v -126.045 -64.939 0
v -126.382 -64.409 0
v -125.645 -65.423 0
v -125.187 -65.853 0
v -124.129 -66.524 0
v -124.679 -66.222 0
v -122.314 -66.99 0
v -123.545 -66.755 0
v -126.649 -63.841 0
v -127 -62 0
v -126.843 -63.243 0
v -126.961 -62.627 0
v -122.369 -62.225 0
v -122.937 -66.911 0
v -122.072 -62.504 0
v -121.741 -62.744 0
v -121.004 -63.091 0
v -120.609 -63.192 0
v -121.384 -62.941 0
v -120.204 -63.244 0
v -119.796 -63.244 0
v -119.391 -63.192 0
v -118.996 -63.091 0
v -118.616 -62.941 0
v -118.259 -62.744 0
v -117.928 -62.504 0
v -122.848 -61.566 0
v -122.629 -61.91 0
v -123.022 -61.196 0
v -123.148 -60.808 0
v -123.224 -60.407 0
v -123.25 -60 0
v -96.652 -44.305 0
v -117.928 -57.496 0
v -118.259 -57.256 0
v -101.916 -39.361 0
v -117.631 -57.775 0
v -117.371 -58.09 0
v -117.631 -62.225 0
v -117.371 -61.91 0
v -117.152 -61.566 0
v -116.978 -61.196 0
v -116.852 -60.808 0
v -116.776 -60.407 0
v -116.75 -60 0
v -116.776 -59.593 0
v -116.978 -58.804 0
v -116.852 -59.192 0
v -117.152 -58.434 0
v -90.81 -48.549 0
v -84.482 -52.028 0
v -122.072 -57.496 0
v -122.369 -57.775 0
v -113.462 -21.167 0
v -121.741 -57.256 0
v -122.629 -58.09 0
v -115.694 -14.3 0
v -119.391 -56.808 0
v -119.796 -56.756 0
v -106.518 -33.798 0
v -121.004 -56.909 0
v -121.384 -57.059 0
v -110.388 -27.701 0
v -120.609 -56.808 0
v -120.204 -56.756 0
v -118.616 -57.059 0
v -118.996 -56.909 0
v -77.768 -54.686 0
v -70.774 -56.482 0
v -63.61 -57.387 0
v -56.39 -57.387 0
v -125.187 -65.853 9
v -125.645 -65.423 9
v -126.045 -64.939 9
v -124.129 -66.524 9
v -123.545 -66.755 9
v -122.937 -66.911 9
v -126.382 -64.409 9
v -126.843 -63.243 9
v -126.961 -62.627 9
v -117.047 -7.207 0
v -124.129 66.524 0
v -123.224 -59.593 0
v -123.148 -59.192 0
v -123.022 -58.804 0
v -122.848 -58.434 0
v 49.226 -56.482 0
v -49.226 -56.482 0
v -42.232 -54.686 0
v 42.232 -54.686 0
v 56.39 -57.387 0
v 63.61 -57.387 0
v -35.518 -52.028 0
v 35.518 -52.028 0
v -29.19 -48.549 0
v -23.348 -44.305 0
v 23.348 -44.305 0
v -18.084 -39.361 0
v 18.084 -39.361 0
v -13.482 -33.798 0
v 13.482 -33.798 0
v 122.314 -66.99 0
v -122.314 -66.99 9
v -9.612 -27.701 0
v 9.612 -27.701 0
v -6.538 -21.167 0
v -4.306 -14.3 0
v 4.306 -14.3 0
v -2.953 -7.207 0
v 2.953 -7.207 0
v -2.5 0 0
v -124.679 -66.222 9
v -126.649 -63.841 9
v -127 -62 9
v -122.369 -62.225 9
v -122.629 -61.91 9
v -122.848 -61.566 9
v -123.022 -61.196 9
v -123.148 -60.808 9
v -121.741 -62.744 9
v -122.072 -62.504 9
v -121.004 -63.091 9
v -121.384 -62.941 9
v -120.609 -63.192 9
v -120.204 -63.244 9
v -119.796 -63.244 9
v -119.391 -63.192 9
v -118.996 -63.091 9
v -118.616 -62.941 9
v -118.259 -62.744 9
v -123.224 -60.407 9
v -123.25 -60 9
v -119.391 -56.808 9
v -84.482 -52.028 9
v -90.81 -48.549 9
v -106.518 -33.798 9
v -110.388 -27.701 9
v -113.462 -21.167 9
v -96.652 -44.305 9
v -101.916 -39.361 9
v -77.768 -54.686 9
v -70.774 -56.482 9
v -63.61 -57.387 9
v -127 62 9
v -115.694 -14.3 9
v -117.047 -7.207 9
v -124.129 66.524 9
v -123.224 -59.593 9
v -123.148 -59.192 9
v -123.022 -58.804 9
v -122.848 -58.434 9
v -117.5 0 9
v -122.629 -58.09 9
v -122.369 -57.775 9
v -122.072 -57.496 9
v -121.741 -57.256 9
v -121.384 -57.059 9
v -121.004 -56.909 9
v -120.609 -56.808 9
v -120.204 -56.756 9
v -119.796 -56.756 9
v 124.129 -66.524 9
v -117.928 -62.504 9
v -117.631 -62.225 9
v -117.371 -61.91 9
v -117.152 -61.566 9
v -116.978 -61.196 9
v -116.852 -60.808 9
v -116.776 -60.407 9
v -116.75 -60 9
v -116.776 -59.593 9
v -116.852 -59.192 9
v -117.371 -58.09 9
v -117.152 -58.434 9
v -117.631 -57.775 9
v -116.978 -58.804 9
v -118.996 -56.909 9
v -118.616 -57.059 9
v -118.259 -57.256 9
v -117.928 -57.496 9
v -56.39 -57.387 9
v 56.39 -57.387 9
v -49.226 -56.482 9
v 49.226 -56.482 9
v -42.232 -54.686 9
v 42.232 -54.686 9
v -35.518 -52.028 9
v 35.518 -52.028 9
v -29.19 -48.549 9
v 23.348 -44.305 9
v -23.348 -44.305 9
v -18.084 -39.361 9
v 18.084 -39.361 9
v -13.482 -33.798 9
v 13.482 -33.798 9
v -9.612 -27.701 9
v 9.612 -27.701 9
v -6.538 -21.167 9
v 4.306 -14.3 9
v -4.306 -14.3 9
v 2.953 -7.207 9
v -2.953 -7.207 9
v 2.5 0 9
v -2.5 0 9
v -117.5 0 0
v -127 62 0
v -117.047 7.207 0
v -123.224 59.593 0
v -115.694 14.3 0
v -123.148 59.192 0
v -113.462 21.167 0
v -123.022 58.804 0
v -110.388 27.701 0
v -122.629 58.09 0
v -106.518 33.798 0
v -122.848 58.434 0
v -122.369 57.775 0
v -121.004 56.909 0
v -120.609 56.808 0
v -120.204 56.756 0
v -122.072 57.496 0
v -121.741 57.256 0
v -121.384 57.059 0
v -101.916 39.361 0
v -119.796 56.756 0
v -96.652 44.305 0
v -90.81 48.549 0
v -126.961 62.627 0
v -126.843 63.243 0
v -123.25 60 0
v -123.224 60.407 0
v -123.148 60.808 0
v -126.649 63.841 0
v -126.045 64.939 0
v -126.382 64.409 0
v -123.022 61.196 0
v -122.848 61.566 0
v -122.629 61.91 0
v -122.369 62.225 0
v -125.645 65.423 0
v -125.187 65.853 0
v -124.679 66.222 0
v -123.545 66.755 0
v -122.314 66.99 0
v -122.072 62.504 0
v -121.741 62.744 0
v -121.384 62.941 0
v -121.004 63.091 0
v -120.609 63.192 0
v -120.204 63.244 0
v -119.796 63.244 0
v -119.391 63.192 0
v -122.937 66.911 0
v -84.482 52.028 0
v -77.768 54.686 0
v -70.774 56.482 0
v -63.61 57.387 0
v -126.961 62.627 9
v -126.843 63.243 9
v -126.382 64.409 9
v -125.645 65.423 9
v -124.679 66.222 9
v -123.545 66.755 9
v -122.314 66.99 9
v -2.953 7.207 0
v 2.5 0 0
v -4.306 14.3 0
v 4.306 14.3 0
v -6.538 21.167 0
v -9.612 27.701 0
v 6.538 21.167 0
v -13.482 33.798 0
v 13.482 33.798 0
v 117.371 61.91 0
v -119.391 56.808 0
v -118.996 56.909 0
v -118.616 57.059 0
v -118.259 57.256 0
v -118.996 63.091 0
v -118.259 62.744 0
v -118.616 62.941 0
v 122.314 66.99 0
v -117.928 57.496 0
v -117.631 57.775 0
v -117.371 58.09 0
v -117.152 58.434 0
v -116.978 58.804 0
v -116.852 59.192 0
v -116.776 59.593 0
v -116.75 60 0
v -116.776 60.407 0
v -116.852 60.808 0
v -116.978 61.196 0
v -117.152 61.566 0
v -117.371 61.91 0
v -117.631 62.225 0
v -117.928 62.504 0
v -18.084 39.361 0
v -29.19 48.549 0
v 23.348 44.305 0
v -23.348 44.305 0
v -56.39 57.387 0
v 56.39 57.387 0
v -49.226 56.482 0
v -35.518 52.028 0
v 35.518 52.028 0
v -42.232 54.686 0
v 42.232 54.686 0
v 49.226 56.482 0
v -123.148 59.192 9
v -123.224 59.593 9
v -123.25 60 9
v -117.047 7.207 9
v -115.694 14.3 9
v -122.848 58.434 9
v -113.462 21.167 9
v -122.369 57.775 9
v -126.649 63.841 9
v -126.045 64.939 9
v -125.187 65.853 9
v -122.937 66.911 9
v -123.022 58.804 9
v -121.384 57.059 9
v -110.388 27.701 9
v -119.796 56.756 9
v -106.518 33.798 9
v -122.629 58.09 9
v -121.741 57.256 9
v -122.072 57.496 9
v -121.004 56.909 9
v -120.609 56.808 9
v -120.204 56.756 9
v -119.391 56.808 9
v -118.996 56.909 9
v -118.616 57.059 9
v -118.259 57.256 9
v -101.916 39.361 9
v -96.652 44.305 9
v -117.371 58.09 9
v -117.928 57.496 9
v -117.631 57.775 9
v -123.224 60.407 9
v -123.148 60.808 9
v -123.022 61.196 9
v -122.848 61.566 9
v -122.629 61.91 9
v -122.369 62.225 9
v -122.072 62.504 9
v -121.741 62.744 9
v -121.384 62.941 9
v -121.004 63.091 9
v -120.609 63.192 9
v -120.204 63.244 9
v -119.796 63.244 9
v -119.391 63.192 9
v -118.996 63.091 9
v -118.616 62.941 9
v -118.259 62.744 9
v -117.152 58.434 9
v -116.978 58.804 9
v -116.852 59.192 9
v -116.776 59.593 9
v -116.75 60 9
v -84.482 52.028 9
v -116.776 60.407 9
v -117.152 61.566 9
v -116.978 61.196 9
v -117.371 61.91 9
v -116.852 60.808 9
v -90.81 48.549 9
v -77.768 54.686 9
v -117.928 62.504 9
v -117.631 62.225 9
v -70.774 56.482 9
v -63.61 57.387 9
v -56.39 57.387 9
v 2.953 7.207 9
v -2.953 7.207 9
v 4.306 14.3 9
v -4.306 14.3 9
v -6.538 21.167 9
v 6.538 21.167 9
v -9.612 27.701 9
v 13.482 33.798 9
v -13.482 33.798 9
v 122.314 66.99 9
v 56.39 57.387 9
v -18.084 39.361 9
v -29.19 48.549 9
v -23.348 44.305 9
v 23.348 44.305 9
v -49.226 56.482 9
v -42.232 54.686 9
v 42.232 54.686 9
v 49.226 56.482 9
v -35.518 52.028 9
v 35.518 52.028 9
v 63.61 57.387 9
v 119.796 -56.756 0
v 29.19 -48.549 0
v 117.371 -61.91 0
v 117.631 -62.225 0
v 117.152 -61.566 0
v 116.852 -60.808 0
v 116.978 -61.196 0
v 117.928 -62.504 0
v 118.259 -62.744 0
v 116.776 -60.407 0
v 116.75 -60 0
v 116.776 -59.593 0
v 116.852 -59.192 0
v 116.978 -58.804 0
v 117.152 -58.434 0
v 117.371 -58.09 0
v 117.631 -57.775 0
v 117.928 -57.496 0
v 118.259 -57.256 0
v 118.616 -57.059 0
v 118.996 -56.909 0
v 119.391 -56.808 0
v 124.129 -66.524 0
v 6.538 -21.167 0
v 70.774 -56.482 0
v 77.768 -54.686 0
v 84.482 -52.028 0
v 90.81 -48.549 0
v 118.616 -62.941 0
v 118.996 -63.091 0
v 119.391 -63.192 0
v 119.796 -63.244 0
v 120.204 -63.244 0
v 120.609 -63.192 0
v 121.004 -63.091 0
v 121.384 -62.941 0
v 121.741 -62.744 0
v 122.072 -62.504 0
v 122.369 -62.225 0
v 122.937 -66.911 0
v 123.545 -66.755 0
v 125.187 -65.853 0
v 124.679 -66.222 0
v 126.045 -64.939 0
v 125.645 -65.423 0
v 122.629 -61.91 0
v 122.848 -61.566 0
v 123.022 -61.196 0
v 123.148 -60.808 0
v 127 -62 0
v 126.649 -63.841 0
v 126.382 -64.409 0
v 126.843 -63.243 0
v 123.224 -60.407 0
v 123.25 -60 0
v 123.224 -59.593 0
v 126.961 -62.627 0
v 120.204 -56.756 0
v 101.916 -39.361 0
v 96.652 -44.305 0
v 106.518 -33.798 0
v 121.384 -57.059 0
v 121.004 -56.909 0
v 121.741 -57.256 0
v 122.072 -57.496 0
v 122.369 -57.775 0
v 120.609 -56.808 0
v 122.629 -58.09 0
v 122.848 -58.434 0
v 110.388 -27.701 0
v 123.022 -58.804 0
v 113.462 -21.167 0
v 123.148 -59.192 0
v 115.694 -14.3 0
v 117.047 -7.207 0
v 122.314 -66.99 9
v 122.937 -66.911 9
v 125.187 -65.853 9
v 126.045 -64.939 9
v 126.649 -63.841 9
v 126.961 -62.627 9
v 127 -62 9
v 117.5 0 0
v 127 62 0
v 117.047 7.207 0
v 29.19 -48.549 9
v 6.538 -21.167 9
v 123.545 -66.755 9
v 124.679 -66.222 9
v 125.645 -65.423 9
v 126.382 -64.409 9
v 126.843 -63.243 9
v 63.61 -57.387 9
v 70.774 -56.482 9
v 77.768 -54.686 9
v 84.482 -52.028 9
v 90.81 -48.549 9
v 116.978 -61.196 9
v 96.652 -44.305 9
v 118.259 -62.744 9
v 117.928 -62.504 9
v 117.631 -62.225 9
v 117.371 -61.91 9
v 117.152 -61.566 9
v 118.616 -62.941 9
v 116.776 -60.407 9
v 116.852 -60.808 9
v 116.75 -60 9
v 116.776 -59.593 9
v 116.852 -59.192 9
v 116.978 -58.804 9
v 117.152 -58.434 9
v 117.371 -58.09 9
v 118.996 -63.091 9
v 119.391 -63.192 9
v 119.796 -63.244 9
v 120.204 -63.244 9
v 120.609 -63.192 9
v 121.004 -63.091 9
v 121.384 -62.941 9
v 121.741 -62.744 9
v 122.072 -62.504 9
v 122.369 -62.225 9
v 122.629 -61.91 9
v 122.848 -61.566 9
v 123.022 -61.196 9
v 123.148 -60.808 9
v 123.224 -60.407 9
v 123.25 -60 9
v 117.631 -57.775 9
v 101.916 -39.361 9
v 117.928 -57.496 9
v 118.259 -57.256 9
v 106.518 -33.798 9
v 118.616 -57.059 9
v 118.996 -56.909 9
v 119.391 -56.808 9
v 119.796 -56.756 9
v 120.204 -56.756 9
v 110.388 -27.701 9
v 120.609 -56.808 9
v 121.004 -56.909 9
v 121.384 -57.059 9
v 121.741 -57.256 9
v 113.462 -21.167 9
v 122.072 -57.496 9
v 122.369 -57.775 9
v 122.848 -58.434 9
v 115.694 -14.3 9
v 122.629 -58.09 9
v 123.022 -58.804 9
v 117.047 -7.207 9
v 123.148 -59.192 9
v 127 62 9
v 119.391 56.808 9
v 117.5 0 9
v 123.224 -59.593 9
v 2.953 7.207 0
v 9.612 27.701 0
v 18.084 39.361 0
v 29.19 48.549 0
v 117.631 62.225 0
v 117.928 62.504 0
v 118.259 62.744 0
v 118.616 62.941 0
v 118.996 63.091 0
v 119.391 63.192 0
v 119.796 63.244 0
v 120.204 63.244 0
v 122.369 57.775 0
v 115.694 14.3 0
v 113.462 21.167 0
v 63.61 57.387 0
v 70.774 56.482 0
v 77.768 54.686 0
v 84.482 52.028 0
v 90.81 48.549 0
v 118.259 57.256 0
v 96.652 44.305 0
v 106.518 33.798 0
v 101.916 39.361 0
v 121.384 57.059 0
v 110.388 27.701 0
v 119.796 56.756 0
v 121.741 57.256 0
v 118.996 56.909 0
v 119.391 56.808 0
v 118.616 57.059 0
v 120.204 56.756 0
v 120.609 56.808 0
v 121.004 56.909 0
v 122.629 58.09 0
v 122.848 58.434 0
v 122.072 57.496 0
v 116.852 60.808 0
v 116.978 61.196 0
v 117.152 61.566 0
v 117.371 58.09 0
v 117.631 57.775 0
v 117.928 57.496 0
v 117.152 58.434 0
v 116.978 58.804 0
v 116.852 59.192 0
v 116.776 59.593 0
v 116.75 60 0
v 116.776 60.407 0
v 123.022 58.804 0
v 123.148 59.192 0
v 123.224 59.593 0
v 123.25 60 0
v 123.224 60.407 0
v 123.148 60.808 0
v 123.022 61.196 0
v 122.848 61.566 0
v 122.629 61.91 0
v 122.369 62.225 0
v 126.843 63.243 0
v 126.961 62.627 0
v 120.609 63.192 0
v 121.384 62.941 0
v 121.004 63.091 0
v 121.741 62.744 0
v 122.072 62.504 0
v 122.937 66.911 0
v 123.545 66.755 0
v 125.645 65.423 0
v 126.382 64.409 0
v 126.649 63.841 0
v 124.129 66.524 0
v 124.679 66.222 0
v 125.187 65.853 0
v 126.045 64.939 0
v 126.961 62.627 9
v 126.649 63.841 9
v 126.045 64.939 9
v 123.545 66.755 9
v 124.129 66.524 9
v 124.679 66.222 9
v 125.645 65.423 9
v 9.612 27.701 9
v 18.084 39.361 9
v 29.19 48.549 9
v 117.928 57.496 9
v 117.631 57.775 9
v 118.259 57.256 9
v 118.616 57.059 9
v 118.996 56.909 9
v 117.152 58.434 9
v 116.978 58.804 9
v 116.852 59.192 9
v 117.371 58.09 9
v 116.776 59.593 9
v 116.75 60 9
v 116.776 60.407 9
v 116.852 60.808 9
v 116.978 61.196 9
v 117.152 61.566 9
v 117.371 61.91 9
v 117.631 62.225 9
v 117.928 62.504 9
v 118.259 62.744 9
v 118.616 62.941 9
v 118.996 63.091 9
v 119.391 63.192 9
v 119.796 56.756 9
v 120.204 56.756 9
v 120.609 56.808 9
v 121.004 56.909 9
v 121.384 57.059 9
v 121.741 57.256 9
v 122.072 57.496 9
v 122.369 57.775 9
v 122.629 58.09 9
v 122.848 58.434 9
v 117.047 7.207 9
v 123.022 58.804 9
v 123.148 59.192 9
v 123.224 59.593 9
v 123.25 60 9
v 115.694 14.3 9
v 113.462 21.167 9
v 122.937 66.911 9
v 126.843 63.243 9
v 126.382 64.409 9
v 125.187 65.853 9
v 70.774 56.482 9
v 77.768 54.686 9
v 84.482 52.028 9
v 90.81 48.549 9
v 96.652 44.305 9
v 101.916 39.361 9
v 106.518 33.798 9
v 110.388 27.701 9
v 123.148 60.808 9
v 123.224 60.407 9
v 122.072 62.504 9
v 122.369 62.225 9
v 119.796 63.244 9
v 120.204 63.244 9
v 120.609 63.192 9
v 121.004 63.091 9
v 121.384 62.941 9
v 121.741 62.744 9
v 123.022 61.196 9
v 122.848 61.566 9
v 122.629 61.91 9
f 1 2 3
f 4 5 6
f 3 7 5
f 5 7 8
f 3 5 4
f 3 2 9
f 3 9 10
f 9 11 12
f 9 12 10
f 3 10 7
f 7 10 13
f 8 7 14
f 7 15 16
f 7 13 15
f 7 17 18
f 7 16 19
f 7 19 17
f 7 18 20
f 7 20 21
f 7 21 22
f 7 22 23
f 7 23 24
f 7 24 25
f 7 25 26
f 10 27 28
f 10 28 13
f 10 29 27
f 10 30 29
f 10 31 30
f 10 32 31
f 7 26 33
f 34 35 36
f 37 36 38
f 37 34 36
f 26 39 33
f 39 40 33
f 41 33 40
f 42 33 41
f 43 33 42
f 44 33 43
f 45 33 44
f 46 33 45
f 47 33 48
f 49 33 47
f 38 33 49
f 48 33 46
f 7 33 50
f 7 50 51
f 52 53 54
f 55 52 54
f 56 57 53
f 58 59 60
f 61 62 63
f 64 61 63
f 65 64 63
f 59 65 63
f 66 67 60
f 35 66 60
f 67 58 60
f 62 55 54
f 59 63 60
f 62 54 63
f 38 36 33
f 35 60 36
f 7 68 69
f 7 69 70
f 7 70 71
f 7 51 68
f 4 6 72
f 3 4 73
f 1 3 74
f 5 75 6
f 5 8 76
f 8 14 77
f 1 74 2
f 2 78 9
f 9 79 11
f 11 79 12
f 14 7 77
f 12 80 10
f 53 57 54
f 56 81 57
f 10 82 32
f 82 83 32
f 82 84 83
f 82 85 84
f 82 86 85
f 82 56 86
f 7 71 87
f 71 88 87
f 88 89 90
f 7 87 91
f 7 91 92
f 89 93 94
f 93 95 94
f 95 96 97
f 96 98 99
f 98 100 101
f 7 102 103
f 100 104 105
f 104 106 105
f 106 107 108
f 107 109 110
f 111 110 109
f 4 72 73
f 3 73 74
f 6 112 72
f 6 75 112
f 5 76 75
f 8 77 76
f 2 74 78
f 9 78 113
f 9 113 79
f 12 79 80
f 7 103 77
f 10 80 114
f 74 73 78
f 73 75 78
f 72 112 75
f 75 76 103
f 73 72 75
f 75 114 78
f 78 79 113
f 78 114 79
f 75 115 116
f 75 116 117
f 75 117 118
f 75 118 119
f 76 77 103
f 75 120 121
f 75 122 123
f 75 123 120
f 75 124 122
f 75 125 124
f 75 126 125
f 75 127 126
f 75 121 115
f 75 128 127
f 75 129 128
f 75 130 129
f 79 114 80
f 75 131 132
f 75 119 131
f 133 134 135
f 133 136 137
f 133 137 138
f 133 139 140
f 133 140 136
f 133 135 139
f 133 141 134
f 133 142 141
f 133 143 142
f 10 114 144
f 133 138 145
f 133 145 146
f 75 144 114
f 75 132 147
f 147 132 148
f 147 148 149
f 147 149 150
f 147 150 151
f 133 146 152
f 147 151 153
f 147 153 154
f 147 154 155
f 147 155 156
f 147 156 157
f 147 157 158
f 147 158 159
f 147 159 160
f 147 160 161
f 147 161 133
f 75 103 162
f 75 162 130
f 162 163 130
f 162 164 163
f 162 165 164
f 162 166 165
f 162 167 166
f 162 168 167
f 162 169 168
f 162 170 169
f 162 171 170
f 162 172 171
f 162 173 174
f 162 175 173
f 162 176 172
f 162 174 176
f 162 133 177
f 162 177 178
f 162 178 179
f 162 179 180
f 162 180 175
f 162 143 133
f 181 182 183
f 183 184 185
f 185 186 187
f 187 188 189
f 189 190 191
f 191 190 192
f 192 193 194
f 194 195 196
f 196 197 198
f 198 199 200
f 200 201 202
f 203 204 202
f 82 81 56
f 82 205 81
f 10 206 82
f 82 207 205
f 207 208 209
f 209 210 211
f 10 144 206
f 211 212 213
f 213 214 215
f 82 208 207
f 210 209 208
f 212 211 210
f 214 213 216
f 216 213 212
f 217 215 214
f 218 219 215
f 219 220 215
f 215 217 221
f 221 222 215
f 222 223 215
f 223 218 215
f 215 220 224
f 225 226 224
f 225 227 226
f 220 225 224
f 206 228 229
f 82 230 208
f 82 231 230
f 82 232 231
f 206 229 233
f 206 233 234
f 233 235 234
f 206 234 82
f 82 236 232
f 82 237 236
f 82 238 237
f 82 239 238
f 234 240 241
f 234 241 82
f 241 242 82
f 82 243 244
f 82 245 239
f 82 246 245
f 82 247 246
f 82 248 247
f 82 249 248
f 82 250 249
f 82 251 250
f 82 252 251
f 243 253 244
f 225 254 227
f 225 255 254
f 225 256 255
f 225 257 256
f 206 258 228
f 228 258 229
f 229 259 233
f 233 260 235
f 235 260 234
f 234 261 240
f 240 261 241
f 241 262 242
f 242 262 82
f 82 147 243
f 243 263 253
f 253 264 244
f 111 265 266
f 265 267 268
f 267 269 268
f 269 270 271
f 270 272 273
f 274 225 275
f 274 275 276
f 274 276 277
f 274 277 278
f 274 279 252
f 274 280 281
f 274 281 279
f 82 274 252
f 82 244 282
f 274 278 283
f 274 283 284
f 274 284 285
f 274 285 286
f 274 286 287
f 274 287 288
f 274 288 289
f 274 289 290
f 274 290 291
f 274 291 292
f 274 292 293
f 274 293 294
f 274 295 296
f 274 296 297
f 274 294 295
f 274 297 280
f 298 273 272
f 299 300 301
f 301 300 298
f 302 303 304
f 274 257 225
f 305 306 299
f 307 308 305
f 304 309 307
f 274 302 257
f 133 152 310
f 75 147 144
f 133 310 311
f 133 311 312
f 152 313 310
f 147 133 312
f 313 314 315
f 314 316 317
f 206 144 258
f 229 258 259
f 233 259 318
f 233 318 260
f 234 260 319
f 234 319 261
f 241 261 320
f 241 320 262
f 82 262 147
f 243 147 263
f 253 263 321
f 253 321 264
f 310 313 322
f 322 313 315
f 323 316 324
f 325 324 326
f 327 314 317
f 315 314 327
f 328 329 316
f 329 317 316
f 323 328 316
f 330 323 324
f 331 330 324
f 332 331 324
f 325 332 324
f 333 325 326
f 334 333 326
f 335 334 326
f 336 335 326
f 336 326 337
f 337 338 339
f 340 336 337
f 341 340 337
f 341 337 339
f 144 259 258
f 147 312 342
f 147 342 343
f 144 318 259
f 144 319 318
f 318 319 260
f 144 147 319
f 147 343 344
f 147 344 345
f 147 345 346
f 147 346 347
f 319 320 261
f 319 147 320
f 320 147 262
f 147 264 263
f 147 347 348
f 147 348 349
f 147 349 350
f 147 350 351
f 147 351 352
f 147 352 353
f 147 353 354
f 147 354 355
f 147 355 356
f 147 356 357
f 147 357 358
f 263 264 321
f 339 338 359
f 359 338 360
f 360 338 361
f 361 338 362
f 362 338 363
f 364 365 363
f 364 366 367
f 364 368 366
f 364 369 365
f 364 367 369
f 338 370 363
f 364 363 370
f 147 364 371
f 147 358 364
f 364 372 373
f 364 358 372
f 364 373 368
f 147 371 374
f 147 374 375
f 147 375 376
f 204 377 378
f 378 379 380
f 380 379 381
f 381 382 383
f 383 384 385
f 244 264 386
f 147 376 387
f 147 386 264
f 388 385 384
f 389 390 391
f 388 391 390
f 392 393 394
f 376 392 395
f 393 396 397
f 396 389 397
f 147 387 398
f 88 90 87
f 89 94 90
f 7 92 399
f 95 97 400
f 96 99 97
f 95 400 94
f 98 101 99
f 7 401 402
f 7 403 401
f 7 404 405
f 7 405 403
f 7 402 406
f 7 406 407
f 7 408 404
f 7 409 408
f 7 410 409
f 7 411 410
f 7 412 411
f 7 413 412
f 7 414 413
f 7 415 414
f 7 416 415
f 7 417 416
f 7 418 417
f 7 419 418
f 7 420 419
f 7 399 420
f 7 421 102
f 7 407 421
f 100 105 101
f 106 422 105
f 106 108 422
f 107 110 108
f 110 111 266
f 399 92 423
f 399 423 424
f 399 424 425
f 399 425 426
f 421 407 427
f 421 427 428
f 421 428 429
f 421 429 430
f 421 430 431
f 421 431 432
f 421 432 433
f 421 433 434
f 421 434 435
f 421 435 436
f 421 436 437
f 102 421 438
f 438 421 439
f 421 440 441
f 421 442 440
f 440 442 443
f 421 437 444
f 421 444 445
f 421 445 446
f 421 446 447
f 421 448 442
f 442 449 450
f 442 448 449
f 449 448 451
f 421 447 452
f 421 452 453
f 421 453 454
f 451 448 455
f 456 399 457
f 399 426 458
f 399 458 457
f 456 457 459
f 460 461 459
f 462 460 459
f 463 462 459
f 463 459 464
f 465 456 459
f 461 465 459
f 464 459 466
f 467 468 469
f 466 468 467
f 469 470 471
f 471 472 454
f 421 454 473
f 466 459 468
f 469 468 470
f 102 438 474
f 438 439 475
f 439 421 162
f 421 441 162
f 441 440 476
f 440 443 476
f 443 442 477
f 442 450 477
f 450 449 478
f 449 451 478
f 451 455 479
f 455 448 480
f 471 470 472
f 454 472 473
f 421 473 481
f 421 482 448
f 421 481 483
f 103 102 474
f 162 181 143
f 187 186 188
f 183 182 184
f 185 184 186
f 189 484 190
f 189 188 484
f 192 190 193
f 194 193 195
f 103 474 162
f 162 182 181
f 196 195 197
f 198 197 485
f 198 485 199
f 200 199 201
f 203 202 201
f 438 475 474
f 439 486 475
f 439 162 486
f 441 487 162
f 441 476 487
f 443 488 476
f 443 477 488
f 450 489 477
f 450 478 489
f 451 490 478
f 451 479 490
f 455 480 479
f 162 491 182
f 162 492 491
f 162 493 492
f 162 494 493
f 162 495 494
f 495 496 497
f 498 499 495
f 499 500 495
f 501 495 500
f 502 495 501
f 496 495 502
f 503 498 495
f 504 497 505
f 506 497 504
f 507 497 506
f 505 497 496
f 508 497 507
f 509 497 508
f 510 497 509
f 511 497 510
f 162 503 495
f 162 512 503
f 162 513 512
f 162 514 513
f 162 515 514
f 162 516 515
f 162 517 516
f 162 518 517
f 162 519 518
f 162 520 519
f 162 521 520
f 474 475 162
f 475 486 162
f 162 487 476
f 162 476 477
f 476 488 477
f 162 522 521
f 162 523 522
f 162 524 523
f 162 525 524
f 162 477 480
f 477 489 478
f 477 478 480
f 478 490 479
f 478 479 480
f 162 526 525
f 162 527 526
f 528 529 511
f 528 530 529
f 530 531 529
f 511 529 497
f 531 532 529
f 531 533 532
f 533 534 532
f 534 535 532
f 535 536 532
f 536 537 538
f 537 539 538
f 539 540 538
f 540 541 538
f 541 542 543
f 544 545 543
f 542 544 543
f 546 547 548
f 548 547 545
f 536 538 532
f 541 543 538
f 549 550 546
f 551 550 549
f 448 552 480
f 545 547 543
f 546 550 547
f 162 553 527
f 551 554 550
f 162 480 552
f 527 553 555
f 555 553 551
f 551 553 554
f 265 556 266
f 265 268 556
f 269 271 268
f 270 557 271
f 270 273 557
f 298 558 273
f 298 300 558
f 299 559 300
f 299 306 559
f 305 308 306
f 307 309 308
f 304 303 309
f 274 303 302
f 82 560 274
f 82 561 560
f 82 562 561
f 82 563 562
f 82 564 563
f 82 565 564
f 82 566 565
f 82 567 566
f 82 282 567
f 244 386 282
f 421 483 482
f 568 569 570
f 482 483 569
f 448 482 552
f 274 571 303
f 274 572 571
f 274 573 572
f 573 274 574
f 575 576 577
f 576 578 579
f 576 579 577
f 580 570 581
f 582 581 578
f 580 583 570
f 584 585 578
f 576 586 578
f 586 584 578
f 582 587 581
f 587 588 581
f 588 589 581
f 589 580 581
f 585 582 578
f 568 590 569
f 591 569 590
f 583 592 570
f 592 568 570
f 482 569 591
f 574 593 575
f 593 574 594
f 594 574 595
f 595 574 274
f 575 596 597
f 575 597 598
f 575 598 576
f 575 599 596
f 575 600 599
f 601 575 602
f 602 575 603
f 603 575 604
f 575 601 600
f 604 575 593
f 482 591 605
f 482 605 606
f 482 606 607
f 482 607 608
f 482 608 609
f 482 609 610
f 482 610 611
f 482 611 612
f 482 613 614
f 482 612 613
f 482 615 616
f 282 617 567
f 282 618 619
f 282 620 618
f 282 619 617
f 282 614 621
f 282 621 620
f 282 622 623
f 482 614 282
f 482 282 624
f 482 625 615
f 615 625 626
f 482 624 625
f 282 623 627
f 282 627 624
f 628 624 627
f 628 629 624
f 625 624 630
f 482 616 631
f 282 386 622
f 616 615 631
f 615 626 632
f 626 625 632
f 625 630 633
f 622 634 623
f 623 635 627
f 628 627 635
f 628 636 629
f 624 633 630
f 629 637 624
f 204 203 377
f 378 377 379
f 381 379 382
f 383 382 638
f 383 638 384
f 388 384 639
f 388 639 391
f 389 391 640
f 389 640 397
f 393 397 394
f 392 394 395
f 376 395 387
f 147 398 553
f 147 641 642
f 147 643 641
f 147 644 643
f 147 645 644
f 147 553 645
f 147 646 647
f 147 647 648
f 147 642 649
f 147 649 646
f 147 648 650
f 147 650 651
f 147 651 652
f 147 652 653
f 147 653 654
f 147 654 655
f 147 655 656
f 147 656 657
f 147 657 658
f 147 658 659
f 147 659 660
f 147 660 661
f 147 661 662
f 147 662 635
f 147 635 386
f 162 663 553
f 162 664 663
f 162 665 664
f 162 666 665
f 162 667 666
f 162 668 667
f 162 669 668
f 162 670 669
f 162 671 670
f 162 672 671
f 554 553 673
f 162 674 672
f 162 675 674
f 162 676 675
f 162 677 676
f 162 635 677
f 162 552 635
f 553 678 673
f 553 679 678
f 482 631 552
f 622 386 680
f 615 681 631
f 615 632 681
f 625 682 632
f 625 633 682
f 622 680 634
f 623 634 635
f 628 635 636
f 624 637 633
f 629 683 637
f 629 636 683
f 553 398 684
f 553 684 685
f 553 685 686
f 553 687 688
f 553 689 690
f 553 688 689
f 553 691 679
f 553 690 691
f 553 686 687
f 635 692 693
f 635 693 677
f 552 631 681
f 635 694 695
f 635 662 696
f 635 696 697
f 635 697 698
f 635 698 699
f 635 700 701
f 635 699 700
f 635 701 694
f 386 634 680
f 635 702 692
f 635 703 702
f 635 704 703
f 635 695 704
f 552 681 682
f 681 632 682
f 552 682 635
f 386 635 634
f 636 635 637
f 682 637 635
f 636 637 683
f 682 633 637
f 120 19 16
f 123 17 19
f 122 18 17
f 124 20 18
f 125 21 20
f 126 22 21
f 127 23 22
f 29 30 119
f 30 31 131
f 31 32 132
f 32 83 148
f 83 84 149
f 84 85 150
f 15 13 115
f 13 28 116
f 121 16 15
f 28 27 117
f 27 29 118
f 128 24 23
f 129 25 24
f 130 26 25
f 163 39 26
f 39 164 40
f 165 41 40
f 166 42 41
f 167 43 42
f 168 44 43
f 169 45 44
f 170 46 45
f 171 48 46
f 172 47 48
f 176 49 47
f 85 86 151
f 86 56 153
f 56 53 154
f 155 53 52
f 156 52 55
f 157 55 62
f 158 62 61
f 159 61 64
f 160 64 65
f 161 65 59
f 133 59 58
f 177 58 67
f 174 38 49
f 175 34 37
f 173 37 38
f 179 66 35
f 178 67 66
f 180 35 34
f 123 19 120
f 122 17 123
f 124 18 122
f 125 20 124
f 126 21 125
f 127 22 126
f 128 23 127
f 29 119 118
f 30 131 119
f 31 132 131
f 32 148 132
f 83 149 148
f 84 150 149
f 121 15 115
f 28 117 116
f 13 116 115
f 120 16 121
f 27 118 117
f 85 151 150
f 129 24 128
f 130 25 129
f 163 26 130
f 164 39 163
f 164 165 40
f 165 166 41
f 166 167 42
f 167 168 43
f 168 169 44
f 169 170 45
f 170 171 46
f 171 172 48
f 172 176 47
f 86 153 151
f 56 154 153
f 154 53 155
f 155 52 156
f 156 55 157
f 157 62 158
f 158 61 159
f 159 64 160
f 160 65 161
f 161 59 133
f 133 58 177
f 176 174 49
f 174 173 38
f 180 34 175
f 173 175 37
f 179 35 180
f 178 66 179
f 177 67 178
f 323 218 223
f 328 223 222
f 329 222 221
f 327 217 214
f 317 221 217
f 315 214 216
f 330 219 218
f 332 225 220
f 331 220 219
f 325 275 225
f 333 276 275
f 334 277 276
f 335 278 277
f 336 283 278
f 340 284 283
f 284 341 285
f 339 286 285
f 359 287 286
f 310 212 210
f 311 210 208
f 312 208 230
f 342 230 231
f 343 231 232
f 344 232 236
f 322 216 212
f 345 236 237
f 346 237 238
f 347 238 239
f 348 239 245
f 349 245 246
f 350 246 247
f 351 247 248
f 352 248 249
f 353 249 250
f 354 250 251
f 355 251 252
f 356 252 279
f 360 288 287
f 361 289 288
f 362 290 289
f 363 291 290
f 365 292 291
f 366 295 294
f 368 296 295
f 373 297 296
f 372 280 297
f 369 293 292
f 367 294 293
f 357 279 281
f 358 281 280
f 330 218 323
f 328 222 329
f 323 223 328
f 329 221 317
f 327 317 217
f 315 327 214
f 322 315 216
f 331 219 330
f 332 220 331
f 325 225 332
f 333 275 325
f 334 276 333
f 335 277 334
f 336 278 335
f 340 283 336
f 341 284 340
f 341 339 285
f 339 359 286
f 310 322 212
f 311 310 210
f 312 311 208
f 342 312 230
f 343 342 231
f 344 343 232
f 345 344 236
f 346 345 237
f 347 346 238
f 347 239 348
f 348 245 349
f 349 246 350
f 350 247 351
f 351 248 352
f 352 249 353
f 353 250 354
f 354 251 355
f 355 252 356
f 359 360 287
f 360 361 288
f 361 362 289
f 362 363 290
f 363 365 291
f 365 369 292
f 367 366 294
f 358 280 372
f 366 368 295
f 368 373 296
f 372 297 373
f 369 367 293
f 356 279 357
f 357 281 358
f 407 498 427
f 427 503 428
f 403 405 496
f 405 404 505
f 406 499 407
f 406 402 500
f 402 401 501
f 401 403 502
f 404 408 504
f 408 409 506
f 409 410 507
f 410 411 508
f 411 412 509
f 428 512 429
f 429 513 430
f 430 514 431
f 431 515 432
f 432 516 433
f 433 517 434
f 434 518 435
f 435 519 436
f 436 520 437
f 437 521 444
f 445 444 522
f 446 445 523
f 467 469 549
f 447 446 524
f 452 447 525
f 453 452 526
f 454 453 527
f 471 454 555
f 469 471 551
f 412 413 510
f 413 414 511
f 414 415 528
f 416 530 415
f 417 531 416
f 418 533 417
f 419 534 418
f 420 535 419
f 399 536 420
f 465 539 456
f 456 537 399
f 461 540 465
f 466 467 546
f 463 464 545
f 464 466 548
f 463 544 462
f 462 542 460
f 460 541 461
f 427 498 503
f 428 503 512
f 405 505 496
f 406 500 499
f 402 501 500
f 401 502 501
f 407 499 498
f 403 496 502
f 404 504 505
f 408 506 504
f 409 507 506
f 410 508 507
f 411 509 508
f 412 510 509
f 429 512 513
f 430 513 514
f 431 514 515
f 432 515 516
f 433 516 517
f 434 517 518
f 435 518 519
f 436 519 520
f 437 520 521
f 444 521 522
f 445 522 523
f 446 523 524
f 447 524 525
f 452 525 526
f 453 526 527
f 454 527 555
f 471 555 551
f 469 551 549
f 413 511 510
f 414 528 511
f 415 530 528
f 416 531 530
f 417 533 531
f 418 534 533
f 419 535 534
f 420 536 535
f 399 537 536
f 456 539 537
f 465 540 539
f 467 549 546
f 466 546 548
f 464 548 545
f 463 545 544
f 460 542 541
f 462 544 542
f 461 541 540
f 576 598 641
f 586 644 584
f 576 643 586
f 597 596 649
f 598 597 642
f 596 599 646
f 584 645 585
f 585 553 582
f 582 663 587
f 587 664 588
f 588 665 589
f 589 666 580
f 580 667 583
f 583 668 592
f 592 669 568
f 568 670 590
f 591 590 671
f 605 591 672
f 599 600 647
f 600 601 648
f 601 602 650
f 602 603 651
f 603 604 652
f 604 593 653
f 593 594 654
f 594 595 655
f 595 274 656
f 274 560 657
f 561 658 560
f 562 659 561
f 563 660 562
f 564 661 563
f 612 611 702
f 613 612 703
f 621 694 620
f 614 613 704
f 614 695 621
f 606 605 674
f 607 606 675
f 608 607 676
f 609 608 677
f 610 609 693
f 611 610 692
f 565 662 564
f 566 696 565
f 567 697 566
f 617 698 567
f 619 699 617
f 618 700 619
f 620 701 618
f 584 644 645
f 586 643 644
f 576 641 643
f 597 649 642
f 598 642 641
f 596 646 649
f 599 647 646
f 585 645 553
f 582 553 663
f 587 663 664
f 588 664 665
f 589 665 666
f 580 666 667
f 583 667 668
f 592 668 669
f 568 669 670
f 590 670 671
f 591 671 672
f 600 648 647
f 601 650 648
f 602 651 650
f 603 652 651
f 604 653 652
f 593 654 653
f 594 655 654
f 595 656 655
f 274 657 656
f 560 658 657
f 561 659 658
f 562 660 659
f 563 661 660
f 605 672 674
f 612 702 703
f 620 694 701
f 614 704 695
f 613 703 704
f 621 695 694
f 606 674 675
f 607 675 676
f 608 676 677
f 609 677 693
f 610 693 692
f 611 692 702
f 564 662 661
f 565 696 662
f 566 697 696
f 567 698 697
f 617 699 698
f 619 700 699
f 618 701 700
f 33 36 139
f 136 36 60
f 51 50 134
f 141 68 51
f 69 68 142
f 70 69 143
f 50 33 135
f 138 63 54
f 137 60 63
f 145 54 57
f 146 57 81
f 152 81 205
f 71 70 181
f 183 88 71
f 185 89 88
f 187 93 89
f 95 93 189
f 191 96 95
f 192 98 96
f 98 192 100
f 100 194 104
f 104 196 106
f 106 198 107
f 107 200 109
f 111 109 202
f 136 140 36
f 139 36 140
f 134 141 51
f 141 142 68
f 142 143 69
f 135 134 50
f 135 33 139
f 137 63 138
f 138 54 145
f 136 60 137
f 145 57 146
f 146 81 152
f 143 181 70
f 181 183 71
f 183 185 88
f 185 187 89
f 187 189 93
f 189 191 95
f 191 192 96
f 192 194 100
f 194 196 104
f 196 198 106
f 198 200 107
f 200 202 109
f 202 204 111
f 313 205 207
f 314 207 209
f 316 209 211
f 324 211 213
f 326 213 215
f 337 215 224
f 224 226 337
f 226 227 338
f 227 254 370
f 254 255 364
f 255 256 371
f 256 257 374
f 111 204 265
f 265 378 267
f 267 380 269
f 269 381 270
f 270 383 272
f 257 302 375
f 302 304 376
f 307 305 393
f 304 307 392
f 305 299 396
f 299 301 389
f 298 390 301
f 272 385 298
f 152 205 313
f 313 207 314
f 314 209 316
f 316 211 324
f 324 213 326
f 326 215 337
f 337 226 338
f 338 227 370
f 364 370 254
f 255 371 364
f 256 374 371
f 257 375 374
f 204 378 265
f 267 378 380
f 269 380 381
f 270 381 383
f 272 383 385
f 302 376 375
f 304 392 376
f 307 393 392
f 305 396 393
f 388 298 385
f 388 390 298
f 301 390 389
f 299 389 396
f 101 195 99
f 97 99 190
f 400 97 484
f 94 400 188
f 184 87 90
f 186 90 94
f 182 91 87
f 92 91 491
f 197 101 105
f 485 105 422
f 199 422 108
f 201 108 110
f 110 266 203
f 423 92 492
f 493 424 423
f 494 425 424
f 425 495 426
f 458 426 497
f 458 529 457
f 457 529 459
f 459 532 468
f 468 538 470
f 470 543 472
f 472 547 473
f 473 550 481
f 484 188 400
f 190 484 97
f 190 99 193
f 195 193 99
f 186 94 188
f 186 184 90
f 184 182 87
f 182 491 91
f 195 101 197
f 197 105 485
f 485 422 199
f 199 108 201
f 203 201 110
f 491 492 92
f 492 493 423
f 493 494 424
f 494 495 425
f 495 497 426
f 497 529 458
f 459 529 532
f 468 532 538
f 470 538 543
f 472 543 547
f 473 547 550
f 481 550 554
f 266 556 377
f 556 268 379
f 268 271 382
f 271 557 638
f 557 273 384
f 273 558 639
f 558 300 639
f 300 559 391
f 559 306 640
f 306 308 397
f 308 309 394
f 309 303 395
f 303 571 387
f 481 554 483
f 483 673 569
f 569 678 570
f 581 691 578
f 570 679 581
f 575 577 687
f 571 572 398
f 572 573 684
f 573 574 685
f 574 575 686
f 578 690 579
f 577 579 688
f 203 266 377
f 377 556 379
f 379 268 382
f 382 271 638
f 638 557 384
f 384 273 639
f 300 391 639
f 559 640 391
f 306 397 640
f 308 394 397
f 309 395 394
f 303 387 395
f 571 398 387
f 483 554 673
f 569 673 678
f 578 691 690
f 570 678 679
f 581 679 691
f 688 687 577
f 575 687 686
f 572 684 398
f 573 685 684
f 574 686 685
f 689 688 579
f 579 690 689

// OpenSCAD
$fn = 50;

difference() {
	union() {
		hull() {
			translate(v = [-122.0, 62.0, 0]) {
				cylinder(h = 9, r = 5);
			}
			translate(v = [122.0, 62.0, 0]) {
				cylinder(h = 9, r = 5);
			}
			translate(v = [-122.0, -62.0, 0]) {
				cylinder(h = 9, r = 5);
			}
			translate(v = [122.0, -62.0, 0]) {
				cylinder(h = 9, r = 5);
			}
		}
	}
	union() {
		translate(v = [-120.0, -60.0, -100.0]) {
			cylinder(h = 200, r = 3.25);
		}
		translate(v = [-120.0, 60.0, -100.0]) {
			cylinder(h = 200, r = 3.25);
		}
		translate(v = [120.0, -60.0, -100.0]) {
			cylinder(h = 200, r = 3.25);
		}
		translate(v = [120.0, 60.0, -100.0]) {
			cylinder(h = 200, r = 3.25);
		}
		translate(v = [-120.0, -60.0, -100.0]) {
			cylinder(h = 200, r = 1.8);
		}
		translate(v = [-120.0, 60.0, -100.0]) {
			cylinder(h = 200, r = 1.8);
		}
		translate(v = [120.0, -60.0, -100.0]) {
			cylinder(h = 200, r = 1.8);
		}
		translate(v = [120.0, 60.0, -100.0]) {
			cylinder(h = 200, r = 1.8);
		}
		translate(v = [-60.0, 0, 0.0]) {
			cylinder(h = 9, r = 57.5);
		}
		translate(v = [60.0, 0, 0.0]) {
			cylinder(h = 9, r = 57.5);
		}
	}
}
